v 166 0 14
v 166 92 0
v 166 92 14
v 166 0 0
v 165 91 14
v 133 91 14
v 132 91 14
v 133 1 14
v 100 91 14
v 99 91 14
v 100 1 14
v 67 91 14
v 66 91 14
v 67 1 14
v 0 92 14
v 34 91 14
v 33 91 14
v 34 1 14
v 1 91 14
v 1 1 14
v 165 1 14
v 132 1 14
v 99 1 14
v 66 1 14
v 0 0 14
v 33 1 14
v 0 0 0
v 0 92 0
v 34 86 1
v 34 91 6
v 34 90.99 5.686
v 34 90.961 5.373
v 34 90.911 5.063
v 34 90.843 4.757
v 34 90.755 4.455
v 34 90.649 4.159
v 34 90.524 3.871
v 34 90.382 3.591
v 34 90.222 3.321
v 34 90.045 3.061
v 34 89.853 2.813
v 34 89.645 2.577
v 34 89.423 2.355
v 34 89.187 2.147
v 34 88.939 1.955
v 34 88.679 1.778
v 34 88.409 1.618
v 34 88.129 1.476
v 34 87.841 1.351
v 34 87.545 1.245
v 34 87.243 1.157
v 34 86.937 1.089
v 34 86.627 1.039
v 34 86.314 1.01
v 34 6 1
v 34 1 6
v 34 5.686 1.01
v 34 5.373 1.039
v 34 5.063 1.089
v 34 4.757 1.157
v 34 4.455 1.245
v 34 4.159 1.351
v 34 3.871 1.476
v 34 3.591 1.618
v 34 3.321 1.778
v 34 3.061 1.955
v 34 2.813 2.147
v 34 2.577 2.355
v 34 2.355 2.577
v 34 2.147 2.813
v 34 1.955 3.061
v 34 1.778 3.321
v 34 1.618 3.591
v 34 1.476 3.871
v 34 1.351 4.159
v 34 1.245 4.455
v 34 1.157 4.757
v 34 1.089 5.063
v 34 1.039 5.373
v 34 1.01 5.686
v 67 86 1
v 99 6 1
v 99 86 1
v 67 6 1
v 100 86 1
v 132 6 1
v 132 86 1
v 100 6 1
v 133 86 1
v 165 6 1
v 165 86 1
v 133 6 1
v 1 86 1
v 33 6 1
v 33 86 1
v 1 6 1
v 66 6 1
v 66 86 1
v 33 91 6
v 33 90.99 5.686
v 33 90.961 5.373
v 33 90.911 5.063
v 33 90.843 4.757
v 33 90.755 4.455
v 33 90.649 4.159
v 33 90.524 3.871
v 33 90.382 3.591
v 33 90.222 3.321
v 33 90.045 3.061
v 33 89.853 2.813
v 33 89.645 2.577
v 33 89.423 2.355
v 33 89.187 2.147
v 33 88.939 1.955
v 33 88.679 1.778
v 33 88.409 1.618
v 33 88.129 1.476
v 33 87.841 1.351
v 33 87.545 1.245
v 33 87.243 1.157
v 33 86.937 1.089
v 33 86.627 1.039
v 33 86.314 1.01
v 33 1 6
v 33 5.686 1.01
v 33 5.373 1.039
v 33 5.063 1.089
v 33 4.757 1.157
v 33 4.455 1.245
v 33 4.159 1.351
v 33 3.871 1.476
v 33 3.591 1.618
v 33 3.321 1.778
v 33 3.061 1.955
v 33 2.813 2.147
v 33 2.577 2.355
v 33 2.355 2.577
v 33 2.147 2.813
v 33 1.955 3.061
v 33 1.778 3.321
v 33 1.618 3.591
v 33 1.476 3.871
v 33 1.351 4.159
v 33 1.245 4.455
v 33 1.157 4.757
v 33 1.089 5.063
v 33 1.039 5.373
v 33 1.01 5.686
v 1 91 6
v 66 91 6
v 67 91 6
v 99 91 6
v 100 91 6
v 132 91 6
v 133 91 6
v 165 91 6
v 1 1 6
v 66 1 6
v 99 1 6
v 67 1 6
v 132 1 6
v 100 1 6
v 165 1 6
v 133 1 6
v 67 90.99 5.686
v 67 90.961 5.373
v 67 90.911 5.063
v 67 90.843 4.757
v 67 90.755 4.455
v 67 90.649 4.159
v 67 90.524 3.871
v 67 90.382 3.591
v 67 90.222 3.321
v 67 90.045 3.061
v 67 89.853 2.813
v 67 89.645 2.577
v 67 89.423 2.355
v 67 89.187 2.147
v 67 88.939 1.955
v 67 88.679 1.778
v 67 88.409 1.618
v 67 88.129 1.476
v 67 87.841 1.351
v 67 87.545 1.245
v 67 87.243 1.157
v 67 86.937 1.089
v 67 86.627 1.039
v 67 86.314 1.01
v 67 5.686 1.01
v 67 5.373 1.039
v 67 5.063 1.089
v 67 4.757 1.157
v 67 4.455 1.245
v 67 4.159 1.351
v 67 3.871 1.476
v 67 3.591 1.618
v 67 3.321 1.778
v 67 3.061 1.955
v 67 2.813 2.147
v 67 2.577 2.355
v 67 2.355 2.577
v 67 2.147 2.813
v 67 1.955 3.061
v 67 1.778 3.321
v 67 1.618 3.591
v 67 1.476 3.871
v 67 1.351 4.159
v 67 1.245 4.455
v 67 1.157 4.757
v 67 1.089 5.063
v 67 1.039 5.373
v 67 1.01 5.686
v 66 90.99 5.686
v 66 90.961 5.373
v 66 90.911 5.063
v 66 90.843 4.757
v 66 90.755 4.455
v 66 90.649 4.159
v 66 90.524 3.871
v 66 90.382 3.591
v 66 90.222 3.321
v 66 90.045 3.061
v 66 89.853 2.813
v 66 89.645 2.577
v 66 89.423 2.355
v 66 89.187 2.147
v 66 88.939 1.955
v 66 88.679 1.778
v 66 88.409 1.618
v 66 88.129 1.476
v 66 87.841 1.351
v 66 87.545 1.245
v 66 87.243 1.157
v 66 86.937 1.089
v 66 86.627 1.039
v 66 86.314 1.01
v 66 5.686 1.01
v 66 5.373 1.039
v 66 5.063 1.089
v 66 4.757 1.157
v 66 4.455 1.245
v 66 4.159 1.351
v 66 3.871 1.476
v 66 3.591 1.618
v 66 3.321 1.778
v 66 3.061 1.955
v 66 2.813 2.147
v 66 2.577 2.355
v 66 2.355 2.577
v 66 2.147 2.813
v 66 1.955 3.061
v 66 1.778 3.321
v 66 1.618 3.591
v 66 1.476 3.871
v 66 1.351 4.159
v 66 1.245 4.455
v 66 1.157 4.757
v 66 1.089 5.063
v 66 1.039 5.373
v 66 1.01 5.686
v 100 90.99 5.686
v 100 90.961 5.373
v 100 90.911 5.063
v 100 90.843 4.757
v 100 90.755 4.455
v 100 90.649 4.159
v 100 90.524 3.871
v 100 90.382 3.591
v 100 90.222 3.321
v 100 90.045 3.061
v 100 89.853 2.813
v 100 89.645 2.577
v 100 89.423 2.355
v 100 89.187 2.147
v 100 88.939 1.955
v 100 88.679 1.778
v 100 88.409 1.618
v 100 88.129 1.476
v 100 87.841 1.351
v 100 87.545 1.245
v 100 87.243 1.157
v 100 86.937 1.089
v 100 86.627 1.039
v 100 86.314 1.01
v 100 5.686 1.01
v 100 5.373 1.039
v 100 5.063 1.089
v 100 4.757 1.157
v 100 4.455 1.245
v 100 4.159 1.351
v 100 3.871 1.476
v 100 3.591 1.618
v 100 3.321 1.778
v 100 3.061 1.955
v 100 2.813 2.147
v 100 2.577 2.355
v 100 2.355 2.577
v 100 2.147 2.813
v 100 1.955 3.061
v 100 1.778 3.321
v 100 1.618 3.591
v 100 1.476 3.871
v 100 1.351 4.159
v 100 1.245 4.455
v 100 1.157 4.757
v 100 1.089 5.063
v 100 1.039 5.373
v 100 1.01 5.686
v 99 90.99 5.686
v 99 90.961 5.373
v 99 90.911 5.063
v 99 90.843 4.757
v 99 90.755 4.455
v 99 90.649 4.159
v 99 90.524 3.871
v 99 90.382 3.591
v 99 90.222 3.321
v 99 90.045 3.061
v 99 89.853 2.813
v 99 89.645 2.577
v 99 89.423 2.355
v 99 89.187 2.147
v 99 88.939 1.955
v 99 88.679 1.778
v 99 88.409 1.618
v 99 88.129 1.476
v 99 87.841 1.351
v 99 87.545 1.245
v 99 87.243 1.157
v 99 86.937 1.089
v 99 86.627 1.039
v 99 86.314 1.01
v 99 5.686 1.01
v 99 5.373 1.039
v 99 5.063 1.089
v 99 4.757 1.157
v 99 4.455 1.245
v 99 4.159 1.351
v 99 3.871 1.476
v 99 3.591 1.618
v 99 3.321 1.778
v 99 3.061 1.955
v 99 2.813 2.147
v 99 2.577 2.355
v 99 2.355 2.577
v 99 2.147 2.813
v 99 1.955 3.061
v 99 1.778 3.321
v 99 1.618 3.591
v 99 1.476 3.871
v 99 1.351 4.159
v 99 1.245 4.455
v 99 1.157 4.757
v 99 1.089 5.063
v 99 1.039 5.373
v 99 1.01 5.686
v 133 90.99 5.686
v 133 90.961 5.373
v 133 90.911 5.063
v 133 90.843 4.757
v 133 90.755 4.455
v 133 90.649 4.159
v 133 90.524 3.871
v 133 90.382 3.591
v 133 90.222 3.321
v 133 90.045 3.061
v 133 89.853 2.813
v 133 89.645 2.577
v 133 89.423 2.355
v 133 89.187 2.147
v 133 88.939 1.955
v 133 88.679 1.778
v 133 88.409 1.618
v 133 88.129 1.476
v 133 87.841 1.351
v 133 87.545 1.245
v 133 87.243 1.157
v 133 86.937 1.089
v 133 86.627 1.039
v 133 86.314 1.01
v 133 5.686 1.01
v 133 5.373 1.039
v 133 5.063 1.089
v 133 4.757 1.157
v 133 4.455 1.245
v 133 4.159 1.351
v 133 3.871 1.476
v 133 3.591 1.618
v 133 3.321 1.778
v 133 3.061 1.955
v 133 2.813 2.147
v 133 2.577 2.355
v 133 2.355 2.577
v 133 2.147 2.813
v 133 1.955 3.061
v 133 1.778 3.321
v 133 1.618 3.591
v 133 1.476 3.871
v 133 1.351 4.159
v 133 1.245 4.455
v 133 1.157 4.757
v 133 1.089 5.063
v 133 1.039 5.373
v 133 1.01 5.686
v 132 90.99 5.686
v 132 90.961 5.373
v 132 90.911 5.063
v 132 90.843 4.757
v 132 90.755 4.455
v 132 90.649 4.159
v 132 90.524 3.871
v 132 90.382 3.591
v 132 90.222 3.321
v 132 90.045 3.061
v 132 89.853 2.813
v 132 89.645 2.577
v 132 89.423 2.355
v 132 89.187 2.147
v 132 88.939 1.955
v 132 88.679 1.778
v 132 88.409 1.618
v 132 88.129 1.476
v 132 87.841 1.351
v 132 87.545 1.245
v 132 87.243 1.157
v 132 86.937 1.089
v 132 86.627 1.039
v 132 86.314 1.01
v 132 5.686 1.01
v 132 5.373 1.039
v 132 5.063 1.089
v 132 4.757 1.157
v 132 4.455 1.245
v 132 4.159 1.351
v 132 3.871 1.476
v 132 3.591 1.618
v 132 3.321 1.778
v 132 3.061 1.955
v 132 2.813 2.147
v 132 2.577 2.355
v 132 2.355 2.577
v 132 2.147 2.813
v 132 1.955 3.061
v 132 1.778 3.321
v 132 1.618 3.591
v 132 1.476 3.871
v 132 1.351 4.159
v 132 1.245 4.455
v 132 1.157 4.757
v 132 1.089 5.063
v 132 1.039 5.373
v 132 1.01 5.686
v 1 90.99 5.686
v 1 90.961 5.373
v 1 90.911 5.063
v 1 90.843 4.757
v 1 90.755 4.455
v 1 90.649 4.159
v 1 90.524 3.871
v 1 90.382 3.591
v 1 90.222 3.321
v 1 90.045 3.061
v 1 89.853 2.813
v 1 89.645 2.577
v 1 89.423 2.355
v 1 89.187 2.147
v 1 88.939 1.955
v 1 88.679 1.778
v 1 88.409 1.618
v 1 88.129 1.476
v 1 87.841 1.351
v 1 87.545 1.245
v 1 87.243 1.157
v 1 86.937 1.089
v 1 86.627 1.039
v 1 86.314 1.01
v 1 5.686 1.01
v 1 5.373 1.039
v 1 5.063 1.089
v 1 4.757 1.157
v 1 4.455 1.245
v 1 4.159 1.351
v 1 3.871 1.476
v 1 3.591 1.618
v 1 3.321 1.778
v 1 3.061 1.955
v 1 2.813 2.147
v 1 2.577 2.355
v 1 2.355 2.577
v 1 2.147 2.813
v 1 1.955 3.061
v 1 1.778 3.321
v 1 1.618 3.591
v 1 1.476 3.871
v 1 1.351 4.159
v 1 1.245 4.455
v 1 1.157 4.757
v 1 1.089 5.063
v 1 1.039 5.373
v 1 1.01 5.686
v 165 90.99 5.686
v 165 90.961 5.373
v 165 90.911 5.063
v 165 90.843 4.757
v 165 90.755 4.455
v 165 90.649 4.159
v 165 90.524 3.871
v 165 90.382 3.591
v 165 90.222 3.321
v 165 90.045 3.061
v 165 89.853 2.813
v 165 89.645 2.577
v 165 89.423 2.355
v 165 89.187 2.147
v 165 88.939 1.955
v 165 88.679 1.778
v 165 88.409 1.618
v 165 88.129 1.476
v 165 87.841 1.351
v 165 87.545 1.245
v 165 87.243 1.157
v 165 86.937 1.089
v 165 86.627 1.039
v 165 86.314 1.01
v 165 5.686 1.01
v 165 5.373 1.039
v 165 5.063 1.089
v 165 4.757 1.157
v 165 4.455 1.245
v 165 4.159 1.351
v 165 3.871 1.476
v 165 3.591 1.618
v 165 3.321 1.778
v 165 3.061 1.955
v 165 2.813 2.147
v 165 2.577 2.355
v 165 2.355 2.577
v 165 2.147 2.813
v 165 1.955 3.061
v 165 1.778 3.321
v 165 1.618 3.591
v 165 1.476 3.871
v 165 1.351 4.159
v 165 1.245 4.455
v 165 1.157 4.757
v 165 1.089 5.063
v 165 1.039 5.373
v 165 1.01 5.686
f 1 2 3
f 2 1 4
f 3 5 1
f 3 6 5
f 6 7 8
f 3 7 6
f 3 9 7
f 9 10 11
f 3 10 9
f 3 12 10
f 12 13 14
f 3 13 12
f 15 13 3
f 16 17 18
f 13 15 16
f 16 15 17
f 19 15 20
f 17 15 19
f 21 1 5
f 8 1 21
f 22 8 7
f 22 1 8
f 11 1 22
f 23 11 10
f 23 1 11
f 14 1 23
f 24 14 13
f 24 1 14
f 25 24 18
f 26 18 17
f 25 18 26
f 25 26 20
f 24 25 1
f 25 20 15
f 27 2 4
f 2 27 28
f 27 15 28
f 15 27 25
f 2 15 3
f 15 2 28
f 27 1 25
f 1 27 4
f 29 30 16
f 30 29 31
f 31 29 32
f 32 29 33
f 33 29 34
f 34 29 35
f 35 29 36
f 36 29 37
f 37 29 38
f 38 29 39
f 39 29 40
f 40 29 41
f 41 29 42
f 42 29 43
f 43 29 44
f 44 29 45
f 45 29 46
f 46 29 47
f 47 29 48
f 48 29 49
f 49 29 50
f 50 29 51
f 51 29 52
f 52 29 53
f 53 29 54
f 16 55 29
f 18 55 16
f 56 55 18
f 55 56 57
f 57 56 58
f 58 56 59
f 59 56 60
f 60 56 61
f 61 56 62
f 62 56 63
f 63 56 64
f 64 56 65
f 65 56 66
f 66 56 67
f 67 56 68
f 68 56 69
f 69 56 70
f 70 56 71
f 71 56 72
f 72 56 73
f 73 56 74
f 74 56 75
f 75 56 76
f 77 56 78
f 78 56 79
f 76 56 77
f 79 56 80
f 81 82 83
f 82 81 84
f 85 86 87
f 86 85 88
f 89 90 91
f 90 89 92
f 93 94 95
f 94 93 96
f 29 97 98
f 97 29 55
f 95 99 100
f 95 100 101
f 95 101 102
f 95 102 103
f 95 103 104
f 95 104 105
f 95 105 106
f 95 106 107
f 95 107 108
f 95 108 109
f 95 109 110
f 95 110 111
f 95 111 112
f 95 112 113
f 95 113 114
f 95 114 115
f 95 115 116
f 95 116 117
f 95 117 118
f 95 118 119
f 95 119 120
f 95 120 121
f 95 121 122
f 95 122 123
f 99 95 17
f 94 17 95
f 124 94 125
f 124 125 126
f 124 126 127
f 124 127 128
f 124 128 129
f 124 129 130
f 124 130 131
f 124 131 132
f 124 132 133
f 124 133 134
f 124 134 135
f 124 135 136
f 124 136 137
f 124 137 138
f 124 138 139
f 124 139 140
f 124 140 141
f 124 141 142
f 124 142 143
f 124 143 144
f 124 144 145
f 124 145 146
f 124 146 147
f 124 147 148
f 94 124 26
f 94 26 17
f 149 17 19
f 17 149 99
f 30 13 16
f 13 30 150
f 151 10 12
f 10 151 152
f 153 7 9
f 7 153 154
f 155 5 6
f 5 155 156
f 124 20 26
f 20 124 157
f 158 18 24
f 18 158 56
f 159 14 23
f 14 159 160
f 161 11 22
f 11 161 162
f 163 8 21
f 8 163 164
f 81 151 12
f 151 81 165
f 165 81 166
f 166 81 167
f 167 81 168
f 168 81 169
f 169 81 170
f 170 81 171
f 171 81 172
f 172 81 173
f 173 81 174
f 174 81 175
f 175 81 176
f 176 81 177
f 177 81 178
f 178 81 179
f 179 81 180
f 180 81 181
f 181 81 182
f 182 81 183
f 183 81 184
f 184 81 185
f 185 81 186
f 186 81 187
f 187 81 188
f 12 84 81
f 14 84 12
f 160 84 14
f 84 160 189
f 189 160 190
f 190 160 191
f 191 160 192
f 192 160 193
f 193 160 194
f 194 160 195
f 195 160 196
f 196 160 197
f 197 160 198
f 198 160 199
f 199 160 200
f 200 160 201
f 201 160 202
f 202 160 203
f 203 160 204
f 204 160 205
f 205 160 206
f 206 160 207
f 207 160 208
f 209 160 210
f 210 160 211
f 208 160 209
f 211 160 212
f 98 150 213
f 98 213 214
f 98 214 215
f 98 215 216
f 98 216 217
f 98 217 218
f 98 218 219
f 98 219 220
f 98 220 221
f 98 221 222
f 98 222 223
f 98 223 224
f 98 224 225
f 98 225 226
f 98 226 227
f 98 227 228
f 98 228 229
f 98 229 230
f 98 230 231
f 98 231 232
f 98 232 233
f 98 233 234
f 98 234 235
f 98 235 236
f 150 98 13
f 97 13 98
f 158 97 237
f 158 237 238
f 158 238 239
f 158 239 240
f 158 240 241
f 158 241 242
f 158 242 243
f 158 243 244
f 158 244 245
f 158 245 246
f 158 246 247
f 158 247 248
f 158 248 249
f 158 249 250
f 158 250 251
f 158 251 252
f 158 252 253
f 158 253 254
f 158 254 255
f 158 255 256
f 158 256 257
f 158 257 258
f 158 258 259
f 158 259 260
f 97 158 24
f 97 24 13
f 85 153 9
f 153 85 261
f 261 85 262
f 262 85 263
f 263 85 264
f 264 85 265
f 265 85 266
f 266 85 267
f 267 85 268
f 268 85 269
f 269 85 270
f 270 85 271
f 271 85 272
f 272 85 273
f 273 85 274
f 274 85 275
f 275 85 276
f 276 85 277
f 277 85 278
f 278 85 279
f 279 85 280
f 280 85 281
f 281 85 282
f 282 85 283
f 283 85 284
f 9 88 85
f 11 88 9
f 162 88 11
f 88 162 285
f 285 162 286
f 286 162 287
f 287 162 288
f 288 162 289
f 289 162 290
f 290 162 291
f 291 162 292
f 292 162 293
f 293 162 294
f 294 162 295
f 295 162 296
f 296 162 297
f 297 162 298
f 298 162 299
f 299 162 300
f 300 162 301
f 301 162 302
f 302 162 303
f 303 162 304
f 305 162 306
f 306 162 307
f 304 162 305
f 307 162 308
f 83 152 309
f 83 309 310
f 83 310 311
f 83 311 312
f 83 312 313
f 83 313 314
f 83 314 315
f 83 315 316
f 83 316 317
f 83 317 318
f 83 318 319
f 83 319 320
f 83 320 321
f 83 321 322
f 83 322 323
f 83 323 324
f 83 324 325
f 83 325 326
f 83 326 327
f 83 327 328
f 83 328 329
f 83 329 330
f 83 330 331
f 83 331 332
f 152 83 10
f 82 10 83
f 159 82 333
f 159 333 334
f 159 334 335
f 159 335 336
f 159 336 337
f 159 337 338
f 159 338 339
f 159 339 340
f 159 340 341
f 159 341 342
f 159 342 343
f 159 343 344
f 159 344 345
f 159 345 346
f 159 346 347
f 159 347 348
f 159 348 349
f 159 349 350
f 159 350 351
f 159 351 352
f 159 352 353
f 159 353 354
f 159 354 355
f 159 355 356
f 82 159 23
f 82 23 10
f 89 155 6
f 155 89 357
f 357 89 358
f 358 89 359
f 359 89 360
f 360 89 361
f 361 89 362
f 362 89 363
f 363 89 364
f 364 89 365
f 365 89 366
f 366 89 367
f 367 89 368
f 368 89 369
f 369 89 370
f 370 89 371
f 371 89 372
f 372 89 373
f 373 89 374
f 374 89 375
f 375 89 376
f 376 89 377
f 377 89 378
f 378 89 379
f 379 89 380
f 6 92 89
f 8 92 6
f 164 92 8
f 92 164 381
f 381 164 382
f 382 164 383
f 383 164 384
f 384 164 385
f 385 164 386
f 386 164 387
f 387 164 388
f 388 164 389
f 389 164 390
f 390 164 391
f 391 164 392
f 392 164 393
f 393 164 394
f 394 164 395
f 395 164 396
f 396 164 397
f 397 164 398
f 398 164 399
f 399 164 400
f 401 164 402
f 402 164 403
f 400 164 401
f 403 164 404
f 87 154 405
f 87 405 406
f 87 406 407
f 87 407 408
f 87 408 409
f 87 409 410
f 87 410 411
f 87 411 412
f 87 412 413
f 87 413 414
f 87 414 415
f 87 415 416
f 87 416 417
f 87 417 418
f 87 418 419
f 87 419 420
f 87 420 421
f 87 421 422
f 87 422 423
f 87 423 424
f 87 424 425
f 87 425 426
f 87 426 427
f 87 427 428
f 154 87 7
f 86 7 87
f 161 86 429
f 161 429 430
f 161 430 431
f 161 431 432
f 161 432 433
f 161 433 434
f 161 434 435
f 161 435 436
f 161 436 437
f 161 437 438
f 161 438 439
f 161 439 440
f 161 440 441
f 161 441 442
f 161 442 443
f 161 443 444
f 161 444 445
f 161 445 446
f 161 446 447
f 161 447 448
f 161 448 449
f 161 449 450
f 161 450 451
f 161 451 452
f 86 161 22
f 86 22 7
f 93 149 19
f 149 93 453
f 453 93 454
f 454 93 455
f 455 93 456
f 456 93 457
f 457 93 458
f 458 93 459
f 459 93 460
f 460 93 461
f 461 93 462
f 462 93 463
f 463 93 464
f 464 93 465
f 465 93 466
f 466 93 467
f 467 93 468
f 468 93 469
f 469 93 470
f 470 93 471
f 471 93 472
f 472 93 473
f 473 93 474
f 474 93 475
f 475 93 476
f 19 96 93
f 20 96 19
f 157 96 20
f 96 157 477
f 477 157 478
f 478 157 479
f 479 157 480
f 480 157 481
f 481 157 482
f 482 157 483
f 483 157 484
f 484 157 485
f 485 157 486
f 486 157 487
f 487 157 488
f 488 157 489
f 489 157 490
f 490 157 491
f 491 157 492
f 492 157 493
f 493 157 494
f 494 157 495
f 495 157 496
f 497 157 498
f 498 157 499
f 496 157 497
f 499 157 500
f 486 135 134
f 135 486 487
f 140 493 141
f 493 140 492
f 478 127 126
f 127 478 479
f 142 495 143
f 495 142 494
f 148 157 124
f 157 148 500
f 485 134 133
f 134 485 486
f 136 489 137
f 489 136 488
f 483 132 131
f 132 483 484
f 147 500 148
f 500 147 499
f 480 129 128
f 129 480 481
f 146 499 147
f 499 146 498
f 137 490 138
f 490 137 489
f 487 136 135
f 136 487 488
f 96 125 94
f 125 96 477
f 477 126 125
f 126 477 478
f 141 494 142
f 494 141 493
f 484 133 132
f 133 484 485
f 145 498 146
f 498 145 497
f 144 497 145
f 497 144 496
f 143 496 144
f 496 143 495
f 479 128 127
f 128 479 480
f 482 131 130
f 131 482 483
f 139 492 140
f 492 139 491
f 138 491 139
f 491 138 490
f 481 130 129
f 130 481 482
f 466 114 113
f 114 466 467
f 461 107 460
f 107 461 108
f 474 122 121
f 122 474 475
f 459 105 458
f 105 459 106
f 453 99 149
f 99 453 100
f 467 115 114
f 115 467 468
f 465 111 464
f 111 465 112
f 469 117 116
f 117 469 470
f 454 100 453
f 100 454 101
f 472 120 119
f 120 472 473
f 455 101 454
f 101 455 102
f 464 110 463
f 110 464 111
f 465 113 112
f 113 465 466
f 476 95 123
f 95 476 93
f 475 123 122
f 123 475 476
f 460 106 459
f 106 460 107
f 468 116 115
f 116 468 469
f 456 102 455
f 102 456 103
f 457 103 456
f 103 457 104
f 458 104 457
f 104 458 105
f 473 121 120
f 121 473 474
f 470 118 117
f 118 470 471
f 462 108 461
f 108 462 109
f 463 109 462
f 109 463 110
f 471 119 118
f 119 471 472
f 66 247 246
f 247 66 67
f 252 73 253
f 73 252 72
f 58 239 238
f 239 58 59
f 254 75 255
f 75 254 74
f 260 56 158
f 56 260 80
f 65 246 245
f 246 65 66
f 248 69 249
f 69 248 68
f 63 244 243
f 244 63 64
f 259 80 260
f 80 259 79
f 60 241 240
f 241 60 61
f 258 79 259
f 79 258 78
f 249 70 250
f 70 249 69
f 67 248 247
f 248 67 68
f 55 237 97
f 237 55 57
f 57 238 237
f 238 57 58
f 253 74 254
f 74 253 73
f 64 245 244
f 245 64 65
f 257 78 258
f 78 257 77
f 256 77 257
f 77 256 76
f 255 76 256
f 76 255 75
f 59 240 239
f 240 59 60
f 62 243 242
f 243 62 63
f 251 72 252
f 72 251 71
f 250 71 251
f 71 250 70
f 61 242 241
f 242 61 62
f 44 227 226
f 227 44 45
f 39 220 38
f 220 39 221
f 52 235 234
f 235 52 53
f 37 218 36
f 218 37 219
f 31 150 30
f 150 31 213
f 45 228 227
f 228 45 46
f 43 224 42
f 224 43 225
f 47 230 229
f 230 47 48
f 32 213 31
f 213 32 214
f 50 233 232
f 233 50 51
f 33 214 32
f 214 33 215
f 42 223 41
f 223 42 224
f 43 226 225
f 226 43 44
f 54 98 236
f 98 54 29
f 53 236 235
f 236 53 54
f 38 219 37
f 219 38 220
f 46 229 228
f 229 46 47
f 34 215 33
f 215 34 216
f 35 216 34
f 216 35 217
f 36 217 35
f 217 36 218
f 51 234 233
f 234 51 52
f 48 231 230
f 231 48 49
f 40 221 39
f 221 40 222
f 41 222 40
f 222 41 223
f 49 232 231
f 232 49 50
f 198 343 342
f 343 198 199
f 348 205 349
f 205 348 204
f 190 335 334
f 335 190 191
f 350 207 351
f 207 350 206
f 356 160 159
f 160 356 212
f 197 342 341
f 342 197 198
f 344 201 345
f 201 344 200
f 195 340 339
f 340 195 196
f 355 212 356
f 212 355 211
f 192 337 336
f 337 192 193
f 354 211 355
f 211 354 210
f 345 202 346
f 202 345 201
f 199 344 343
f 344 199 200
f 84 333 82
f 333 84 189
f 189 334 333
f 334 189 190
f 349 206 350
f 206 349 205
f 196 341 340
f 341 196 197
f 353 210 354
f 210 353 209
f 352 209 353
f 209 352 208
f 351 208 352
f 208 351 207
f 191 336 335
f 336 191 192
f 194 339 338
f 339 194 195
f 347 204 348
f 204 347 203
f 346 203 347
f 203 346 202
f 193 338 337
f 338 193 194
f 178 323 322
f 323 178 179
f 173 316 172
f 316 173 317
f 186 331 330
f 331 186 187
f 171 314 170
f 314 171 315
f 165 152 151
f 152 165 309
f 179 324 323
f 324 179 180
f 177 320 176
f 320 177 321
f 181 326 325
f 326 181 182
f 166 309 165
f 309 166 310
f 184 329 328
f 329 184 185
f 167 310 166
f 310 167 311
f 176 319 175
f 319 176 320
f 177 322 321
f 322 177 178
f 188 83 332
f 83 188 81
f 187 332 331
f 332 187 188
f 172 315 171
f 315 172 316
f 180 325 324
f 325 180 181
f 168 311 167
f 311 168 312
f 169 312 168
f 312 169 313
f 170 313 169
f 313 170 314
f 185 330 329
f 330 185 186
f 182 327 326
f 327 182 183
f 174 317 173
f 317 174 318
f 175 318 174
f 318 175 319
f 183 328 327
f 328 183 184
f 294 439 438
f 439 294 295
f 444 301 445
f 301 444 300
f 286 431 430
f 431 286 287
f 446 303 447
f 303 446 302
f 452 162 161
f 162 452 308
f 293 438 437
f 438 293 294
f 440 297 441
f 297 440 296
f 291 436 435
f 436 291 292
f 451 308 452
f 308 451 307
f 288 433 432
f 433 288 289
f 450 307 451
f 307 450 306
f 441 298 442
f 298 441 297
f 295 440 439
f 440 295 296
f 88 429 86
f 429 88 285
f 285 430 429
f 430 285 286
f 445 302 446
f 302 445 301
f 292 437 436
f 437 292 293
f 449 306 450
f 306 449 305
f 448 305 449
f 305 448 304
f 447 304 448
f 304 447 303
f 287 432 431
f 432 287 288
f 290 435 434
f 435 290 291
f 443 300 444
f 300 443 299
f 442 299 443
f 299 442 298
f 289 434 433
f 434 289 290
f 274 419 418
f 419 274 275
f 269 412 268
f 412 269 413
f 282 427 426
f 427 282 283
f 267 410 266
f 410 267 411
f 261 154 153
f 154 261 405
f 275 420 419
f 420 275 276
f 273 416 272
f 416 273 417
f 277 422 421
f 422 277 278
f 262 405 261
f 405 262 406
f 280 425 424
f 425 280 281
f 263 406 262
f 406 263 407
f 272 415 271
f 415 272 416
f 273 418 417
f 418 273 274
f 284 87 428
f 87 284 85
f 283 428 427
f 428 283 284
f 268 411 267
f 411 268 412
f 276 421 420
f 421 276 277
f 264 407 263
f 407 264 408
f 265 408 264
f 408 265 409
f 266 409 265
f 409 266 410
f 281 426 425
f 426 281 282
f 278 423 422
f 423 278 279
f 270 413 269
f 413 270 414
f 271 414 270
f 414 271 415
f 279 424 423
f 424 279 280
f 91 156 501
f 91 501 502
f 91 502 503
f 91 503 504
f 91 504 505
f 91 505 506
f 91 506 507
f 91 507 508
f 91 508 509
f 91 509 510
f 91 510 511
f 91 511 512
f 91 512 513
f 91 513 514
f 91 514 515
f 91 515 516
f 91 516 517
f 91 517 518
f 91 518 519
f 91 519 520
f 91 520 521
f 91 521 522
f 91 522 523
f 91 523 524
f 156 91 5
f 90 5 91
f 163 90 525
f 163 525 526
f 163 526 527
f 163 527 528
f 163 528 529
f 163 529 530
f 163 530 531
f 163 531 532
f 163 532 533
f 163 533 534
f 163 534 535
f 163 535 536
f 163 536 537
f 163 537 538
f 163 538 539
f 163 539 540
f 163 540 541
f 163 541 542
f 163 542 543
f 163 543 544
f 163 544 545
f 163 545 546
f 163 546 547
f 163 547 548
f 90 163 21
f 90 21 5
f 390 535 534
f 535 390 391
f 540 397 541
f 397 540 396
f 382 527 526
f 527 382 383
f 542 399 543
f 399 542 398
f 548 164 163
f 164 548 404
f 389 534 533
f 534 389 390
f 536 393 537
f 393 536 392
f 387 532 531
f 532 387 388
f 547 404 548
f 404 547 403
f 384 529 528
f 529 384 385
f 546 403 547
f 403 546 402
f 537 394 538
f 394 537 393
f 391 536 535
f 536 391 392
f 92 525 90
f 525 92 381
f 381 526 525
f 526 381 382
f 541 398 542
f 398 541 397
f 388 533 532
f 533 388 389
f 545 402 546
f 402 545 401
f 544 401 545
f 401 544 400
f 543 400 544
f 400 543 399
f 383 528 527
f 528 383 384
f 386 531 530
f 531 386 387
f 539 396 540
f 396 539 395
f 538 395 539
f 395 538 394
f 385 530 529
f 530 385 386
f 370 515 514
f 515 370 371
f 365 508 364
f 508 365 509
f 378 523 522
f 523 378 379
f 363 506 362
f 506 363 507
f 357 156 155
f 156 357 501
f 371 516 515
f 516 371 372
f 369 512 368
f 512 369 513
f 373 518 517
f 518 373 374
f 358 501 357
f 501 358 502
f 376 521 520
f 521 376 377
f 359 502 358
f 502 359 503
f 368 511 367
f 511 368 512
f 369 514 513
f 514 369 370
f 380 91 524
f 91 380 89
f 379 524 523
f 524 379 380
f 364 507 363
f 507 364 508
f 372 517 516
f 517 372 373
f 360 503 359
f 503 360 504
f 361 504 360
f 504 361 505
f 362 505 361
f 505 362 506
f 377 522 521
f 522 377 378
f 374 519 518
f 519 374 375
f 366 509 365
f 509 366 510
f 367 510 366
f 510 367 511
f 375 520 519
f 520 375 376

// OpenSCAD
include <boardgame_insert_toolkit_lib.2.scad>;

// determines whether lids are output.
g_b_print_lid = true;

// determines whether boxes are output.
g_b_print_box = true; 

// Focus on one box
g_isolated_print_box = ""; 

// Used to visualize how all of the boxes fit together. 
g_b_visualization = false;          
        
// this is the outer wall thickness. 
//Default = 1.5mm
g_wall_thickness = 1.0;

// The tolerance value is extra space put between planes of the lid and box that fit together.
// Increase the tolerance to loosen the fit and decrease it to tighten it.
//
// Note that the tolerance is applied exclusively to the lid.
// So if the lid is too tight or too loose, change this value ( up for looser fit, down for tighter fit ) and 
// you only need to reprint the lid.
// 
// The exception is the stackable box, where the bottom of the box is the lid of the box below,
// in which case the tolerance also affects that box bottom.
//
g_tolerance = 0.15;

// This adjusts the position of the lid detents downward. 
// The larger the value, the bigger the gap between the lid and the box.
g_tolerance_detents_pos = 0.1;

aw_size_x = 166.0;
aw_size_y = 92.0;
aw_size_z = 14.0;


data =
  [
    [
      "simple box",
      [
        [ BOX_SIZE_XYZ, [aw_size_x, aw_size_y, aw_size_z] ],
        [ BOX_NO_LID_B, t],
        [
          BOX_COMPONENT,
          [
            [
              CMP_COMPARTMENT_SIZE_XYZ,
              [
                (aw_size_x - 6.0) / 5,
                (aw_size_y - 2.0),
                aw_size_z - g_wall_thickness
              ]
            ],
            [ CMP_NUM_COMPARTMENTS_XY, [5, 1] ],
            [ POSITION_XY, [0, 0] ],
            [ CMP_CUTOUT_SIDES_4B,   [f,f,f,f]],
            //[ CMP_CUTOUT_DEPTH_PCT,  20],
            //[ CMP_CUTOUT_WIDTH_PCT,  50],
            //[ CMP_CUTOUT_HEIGHT_PCT, 100], 
            [ CMP_SHAPE, FILLET ],
            [ CMP_SHAPE_ROTATED_B, t ],
            [ CMP_FILLET_RADIUS, 5.0 ],
          ]
        ],
      ]
    ]
  ];

MakeAll();
